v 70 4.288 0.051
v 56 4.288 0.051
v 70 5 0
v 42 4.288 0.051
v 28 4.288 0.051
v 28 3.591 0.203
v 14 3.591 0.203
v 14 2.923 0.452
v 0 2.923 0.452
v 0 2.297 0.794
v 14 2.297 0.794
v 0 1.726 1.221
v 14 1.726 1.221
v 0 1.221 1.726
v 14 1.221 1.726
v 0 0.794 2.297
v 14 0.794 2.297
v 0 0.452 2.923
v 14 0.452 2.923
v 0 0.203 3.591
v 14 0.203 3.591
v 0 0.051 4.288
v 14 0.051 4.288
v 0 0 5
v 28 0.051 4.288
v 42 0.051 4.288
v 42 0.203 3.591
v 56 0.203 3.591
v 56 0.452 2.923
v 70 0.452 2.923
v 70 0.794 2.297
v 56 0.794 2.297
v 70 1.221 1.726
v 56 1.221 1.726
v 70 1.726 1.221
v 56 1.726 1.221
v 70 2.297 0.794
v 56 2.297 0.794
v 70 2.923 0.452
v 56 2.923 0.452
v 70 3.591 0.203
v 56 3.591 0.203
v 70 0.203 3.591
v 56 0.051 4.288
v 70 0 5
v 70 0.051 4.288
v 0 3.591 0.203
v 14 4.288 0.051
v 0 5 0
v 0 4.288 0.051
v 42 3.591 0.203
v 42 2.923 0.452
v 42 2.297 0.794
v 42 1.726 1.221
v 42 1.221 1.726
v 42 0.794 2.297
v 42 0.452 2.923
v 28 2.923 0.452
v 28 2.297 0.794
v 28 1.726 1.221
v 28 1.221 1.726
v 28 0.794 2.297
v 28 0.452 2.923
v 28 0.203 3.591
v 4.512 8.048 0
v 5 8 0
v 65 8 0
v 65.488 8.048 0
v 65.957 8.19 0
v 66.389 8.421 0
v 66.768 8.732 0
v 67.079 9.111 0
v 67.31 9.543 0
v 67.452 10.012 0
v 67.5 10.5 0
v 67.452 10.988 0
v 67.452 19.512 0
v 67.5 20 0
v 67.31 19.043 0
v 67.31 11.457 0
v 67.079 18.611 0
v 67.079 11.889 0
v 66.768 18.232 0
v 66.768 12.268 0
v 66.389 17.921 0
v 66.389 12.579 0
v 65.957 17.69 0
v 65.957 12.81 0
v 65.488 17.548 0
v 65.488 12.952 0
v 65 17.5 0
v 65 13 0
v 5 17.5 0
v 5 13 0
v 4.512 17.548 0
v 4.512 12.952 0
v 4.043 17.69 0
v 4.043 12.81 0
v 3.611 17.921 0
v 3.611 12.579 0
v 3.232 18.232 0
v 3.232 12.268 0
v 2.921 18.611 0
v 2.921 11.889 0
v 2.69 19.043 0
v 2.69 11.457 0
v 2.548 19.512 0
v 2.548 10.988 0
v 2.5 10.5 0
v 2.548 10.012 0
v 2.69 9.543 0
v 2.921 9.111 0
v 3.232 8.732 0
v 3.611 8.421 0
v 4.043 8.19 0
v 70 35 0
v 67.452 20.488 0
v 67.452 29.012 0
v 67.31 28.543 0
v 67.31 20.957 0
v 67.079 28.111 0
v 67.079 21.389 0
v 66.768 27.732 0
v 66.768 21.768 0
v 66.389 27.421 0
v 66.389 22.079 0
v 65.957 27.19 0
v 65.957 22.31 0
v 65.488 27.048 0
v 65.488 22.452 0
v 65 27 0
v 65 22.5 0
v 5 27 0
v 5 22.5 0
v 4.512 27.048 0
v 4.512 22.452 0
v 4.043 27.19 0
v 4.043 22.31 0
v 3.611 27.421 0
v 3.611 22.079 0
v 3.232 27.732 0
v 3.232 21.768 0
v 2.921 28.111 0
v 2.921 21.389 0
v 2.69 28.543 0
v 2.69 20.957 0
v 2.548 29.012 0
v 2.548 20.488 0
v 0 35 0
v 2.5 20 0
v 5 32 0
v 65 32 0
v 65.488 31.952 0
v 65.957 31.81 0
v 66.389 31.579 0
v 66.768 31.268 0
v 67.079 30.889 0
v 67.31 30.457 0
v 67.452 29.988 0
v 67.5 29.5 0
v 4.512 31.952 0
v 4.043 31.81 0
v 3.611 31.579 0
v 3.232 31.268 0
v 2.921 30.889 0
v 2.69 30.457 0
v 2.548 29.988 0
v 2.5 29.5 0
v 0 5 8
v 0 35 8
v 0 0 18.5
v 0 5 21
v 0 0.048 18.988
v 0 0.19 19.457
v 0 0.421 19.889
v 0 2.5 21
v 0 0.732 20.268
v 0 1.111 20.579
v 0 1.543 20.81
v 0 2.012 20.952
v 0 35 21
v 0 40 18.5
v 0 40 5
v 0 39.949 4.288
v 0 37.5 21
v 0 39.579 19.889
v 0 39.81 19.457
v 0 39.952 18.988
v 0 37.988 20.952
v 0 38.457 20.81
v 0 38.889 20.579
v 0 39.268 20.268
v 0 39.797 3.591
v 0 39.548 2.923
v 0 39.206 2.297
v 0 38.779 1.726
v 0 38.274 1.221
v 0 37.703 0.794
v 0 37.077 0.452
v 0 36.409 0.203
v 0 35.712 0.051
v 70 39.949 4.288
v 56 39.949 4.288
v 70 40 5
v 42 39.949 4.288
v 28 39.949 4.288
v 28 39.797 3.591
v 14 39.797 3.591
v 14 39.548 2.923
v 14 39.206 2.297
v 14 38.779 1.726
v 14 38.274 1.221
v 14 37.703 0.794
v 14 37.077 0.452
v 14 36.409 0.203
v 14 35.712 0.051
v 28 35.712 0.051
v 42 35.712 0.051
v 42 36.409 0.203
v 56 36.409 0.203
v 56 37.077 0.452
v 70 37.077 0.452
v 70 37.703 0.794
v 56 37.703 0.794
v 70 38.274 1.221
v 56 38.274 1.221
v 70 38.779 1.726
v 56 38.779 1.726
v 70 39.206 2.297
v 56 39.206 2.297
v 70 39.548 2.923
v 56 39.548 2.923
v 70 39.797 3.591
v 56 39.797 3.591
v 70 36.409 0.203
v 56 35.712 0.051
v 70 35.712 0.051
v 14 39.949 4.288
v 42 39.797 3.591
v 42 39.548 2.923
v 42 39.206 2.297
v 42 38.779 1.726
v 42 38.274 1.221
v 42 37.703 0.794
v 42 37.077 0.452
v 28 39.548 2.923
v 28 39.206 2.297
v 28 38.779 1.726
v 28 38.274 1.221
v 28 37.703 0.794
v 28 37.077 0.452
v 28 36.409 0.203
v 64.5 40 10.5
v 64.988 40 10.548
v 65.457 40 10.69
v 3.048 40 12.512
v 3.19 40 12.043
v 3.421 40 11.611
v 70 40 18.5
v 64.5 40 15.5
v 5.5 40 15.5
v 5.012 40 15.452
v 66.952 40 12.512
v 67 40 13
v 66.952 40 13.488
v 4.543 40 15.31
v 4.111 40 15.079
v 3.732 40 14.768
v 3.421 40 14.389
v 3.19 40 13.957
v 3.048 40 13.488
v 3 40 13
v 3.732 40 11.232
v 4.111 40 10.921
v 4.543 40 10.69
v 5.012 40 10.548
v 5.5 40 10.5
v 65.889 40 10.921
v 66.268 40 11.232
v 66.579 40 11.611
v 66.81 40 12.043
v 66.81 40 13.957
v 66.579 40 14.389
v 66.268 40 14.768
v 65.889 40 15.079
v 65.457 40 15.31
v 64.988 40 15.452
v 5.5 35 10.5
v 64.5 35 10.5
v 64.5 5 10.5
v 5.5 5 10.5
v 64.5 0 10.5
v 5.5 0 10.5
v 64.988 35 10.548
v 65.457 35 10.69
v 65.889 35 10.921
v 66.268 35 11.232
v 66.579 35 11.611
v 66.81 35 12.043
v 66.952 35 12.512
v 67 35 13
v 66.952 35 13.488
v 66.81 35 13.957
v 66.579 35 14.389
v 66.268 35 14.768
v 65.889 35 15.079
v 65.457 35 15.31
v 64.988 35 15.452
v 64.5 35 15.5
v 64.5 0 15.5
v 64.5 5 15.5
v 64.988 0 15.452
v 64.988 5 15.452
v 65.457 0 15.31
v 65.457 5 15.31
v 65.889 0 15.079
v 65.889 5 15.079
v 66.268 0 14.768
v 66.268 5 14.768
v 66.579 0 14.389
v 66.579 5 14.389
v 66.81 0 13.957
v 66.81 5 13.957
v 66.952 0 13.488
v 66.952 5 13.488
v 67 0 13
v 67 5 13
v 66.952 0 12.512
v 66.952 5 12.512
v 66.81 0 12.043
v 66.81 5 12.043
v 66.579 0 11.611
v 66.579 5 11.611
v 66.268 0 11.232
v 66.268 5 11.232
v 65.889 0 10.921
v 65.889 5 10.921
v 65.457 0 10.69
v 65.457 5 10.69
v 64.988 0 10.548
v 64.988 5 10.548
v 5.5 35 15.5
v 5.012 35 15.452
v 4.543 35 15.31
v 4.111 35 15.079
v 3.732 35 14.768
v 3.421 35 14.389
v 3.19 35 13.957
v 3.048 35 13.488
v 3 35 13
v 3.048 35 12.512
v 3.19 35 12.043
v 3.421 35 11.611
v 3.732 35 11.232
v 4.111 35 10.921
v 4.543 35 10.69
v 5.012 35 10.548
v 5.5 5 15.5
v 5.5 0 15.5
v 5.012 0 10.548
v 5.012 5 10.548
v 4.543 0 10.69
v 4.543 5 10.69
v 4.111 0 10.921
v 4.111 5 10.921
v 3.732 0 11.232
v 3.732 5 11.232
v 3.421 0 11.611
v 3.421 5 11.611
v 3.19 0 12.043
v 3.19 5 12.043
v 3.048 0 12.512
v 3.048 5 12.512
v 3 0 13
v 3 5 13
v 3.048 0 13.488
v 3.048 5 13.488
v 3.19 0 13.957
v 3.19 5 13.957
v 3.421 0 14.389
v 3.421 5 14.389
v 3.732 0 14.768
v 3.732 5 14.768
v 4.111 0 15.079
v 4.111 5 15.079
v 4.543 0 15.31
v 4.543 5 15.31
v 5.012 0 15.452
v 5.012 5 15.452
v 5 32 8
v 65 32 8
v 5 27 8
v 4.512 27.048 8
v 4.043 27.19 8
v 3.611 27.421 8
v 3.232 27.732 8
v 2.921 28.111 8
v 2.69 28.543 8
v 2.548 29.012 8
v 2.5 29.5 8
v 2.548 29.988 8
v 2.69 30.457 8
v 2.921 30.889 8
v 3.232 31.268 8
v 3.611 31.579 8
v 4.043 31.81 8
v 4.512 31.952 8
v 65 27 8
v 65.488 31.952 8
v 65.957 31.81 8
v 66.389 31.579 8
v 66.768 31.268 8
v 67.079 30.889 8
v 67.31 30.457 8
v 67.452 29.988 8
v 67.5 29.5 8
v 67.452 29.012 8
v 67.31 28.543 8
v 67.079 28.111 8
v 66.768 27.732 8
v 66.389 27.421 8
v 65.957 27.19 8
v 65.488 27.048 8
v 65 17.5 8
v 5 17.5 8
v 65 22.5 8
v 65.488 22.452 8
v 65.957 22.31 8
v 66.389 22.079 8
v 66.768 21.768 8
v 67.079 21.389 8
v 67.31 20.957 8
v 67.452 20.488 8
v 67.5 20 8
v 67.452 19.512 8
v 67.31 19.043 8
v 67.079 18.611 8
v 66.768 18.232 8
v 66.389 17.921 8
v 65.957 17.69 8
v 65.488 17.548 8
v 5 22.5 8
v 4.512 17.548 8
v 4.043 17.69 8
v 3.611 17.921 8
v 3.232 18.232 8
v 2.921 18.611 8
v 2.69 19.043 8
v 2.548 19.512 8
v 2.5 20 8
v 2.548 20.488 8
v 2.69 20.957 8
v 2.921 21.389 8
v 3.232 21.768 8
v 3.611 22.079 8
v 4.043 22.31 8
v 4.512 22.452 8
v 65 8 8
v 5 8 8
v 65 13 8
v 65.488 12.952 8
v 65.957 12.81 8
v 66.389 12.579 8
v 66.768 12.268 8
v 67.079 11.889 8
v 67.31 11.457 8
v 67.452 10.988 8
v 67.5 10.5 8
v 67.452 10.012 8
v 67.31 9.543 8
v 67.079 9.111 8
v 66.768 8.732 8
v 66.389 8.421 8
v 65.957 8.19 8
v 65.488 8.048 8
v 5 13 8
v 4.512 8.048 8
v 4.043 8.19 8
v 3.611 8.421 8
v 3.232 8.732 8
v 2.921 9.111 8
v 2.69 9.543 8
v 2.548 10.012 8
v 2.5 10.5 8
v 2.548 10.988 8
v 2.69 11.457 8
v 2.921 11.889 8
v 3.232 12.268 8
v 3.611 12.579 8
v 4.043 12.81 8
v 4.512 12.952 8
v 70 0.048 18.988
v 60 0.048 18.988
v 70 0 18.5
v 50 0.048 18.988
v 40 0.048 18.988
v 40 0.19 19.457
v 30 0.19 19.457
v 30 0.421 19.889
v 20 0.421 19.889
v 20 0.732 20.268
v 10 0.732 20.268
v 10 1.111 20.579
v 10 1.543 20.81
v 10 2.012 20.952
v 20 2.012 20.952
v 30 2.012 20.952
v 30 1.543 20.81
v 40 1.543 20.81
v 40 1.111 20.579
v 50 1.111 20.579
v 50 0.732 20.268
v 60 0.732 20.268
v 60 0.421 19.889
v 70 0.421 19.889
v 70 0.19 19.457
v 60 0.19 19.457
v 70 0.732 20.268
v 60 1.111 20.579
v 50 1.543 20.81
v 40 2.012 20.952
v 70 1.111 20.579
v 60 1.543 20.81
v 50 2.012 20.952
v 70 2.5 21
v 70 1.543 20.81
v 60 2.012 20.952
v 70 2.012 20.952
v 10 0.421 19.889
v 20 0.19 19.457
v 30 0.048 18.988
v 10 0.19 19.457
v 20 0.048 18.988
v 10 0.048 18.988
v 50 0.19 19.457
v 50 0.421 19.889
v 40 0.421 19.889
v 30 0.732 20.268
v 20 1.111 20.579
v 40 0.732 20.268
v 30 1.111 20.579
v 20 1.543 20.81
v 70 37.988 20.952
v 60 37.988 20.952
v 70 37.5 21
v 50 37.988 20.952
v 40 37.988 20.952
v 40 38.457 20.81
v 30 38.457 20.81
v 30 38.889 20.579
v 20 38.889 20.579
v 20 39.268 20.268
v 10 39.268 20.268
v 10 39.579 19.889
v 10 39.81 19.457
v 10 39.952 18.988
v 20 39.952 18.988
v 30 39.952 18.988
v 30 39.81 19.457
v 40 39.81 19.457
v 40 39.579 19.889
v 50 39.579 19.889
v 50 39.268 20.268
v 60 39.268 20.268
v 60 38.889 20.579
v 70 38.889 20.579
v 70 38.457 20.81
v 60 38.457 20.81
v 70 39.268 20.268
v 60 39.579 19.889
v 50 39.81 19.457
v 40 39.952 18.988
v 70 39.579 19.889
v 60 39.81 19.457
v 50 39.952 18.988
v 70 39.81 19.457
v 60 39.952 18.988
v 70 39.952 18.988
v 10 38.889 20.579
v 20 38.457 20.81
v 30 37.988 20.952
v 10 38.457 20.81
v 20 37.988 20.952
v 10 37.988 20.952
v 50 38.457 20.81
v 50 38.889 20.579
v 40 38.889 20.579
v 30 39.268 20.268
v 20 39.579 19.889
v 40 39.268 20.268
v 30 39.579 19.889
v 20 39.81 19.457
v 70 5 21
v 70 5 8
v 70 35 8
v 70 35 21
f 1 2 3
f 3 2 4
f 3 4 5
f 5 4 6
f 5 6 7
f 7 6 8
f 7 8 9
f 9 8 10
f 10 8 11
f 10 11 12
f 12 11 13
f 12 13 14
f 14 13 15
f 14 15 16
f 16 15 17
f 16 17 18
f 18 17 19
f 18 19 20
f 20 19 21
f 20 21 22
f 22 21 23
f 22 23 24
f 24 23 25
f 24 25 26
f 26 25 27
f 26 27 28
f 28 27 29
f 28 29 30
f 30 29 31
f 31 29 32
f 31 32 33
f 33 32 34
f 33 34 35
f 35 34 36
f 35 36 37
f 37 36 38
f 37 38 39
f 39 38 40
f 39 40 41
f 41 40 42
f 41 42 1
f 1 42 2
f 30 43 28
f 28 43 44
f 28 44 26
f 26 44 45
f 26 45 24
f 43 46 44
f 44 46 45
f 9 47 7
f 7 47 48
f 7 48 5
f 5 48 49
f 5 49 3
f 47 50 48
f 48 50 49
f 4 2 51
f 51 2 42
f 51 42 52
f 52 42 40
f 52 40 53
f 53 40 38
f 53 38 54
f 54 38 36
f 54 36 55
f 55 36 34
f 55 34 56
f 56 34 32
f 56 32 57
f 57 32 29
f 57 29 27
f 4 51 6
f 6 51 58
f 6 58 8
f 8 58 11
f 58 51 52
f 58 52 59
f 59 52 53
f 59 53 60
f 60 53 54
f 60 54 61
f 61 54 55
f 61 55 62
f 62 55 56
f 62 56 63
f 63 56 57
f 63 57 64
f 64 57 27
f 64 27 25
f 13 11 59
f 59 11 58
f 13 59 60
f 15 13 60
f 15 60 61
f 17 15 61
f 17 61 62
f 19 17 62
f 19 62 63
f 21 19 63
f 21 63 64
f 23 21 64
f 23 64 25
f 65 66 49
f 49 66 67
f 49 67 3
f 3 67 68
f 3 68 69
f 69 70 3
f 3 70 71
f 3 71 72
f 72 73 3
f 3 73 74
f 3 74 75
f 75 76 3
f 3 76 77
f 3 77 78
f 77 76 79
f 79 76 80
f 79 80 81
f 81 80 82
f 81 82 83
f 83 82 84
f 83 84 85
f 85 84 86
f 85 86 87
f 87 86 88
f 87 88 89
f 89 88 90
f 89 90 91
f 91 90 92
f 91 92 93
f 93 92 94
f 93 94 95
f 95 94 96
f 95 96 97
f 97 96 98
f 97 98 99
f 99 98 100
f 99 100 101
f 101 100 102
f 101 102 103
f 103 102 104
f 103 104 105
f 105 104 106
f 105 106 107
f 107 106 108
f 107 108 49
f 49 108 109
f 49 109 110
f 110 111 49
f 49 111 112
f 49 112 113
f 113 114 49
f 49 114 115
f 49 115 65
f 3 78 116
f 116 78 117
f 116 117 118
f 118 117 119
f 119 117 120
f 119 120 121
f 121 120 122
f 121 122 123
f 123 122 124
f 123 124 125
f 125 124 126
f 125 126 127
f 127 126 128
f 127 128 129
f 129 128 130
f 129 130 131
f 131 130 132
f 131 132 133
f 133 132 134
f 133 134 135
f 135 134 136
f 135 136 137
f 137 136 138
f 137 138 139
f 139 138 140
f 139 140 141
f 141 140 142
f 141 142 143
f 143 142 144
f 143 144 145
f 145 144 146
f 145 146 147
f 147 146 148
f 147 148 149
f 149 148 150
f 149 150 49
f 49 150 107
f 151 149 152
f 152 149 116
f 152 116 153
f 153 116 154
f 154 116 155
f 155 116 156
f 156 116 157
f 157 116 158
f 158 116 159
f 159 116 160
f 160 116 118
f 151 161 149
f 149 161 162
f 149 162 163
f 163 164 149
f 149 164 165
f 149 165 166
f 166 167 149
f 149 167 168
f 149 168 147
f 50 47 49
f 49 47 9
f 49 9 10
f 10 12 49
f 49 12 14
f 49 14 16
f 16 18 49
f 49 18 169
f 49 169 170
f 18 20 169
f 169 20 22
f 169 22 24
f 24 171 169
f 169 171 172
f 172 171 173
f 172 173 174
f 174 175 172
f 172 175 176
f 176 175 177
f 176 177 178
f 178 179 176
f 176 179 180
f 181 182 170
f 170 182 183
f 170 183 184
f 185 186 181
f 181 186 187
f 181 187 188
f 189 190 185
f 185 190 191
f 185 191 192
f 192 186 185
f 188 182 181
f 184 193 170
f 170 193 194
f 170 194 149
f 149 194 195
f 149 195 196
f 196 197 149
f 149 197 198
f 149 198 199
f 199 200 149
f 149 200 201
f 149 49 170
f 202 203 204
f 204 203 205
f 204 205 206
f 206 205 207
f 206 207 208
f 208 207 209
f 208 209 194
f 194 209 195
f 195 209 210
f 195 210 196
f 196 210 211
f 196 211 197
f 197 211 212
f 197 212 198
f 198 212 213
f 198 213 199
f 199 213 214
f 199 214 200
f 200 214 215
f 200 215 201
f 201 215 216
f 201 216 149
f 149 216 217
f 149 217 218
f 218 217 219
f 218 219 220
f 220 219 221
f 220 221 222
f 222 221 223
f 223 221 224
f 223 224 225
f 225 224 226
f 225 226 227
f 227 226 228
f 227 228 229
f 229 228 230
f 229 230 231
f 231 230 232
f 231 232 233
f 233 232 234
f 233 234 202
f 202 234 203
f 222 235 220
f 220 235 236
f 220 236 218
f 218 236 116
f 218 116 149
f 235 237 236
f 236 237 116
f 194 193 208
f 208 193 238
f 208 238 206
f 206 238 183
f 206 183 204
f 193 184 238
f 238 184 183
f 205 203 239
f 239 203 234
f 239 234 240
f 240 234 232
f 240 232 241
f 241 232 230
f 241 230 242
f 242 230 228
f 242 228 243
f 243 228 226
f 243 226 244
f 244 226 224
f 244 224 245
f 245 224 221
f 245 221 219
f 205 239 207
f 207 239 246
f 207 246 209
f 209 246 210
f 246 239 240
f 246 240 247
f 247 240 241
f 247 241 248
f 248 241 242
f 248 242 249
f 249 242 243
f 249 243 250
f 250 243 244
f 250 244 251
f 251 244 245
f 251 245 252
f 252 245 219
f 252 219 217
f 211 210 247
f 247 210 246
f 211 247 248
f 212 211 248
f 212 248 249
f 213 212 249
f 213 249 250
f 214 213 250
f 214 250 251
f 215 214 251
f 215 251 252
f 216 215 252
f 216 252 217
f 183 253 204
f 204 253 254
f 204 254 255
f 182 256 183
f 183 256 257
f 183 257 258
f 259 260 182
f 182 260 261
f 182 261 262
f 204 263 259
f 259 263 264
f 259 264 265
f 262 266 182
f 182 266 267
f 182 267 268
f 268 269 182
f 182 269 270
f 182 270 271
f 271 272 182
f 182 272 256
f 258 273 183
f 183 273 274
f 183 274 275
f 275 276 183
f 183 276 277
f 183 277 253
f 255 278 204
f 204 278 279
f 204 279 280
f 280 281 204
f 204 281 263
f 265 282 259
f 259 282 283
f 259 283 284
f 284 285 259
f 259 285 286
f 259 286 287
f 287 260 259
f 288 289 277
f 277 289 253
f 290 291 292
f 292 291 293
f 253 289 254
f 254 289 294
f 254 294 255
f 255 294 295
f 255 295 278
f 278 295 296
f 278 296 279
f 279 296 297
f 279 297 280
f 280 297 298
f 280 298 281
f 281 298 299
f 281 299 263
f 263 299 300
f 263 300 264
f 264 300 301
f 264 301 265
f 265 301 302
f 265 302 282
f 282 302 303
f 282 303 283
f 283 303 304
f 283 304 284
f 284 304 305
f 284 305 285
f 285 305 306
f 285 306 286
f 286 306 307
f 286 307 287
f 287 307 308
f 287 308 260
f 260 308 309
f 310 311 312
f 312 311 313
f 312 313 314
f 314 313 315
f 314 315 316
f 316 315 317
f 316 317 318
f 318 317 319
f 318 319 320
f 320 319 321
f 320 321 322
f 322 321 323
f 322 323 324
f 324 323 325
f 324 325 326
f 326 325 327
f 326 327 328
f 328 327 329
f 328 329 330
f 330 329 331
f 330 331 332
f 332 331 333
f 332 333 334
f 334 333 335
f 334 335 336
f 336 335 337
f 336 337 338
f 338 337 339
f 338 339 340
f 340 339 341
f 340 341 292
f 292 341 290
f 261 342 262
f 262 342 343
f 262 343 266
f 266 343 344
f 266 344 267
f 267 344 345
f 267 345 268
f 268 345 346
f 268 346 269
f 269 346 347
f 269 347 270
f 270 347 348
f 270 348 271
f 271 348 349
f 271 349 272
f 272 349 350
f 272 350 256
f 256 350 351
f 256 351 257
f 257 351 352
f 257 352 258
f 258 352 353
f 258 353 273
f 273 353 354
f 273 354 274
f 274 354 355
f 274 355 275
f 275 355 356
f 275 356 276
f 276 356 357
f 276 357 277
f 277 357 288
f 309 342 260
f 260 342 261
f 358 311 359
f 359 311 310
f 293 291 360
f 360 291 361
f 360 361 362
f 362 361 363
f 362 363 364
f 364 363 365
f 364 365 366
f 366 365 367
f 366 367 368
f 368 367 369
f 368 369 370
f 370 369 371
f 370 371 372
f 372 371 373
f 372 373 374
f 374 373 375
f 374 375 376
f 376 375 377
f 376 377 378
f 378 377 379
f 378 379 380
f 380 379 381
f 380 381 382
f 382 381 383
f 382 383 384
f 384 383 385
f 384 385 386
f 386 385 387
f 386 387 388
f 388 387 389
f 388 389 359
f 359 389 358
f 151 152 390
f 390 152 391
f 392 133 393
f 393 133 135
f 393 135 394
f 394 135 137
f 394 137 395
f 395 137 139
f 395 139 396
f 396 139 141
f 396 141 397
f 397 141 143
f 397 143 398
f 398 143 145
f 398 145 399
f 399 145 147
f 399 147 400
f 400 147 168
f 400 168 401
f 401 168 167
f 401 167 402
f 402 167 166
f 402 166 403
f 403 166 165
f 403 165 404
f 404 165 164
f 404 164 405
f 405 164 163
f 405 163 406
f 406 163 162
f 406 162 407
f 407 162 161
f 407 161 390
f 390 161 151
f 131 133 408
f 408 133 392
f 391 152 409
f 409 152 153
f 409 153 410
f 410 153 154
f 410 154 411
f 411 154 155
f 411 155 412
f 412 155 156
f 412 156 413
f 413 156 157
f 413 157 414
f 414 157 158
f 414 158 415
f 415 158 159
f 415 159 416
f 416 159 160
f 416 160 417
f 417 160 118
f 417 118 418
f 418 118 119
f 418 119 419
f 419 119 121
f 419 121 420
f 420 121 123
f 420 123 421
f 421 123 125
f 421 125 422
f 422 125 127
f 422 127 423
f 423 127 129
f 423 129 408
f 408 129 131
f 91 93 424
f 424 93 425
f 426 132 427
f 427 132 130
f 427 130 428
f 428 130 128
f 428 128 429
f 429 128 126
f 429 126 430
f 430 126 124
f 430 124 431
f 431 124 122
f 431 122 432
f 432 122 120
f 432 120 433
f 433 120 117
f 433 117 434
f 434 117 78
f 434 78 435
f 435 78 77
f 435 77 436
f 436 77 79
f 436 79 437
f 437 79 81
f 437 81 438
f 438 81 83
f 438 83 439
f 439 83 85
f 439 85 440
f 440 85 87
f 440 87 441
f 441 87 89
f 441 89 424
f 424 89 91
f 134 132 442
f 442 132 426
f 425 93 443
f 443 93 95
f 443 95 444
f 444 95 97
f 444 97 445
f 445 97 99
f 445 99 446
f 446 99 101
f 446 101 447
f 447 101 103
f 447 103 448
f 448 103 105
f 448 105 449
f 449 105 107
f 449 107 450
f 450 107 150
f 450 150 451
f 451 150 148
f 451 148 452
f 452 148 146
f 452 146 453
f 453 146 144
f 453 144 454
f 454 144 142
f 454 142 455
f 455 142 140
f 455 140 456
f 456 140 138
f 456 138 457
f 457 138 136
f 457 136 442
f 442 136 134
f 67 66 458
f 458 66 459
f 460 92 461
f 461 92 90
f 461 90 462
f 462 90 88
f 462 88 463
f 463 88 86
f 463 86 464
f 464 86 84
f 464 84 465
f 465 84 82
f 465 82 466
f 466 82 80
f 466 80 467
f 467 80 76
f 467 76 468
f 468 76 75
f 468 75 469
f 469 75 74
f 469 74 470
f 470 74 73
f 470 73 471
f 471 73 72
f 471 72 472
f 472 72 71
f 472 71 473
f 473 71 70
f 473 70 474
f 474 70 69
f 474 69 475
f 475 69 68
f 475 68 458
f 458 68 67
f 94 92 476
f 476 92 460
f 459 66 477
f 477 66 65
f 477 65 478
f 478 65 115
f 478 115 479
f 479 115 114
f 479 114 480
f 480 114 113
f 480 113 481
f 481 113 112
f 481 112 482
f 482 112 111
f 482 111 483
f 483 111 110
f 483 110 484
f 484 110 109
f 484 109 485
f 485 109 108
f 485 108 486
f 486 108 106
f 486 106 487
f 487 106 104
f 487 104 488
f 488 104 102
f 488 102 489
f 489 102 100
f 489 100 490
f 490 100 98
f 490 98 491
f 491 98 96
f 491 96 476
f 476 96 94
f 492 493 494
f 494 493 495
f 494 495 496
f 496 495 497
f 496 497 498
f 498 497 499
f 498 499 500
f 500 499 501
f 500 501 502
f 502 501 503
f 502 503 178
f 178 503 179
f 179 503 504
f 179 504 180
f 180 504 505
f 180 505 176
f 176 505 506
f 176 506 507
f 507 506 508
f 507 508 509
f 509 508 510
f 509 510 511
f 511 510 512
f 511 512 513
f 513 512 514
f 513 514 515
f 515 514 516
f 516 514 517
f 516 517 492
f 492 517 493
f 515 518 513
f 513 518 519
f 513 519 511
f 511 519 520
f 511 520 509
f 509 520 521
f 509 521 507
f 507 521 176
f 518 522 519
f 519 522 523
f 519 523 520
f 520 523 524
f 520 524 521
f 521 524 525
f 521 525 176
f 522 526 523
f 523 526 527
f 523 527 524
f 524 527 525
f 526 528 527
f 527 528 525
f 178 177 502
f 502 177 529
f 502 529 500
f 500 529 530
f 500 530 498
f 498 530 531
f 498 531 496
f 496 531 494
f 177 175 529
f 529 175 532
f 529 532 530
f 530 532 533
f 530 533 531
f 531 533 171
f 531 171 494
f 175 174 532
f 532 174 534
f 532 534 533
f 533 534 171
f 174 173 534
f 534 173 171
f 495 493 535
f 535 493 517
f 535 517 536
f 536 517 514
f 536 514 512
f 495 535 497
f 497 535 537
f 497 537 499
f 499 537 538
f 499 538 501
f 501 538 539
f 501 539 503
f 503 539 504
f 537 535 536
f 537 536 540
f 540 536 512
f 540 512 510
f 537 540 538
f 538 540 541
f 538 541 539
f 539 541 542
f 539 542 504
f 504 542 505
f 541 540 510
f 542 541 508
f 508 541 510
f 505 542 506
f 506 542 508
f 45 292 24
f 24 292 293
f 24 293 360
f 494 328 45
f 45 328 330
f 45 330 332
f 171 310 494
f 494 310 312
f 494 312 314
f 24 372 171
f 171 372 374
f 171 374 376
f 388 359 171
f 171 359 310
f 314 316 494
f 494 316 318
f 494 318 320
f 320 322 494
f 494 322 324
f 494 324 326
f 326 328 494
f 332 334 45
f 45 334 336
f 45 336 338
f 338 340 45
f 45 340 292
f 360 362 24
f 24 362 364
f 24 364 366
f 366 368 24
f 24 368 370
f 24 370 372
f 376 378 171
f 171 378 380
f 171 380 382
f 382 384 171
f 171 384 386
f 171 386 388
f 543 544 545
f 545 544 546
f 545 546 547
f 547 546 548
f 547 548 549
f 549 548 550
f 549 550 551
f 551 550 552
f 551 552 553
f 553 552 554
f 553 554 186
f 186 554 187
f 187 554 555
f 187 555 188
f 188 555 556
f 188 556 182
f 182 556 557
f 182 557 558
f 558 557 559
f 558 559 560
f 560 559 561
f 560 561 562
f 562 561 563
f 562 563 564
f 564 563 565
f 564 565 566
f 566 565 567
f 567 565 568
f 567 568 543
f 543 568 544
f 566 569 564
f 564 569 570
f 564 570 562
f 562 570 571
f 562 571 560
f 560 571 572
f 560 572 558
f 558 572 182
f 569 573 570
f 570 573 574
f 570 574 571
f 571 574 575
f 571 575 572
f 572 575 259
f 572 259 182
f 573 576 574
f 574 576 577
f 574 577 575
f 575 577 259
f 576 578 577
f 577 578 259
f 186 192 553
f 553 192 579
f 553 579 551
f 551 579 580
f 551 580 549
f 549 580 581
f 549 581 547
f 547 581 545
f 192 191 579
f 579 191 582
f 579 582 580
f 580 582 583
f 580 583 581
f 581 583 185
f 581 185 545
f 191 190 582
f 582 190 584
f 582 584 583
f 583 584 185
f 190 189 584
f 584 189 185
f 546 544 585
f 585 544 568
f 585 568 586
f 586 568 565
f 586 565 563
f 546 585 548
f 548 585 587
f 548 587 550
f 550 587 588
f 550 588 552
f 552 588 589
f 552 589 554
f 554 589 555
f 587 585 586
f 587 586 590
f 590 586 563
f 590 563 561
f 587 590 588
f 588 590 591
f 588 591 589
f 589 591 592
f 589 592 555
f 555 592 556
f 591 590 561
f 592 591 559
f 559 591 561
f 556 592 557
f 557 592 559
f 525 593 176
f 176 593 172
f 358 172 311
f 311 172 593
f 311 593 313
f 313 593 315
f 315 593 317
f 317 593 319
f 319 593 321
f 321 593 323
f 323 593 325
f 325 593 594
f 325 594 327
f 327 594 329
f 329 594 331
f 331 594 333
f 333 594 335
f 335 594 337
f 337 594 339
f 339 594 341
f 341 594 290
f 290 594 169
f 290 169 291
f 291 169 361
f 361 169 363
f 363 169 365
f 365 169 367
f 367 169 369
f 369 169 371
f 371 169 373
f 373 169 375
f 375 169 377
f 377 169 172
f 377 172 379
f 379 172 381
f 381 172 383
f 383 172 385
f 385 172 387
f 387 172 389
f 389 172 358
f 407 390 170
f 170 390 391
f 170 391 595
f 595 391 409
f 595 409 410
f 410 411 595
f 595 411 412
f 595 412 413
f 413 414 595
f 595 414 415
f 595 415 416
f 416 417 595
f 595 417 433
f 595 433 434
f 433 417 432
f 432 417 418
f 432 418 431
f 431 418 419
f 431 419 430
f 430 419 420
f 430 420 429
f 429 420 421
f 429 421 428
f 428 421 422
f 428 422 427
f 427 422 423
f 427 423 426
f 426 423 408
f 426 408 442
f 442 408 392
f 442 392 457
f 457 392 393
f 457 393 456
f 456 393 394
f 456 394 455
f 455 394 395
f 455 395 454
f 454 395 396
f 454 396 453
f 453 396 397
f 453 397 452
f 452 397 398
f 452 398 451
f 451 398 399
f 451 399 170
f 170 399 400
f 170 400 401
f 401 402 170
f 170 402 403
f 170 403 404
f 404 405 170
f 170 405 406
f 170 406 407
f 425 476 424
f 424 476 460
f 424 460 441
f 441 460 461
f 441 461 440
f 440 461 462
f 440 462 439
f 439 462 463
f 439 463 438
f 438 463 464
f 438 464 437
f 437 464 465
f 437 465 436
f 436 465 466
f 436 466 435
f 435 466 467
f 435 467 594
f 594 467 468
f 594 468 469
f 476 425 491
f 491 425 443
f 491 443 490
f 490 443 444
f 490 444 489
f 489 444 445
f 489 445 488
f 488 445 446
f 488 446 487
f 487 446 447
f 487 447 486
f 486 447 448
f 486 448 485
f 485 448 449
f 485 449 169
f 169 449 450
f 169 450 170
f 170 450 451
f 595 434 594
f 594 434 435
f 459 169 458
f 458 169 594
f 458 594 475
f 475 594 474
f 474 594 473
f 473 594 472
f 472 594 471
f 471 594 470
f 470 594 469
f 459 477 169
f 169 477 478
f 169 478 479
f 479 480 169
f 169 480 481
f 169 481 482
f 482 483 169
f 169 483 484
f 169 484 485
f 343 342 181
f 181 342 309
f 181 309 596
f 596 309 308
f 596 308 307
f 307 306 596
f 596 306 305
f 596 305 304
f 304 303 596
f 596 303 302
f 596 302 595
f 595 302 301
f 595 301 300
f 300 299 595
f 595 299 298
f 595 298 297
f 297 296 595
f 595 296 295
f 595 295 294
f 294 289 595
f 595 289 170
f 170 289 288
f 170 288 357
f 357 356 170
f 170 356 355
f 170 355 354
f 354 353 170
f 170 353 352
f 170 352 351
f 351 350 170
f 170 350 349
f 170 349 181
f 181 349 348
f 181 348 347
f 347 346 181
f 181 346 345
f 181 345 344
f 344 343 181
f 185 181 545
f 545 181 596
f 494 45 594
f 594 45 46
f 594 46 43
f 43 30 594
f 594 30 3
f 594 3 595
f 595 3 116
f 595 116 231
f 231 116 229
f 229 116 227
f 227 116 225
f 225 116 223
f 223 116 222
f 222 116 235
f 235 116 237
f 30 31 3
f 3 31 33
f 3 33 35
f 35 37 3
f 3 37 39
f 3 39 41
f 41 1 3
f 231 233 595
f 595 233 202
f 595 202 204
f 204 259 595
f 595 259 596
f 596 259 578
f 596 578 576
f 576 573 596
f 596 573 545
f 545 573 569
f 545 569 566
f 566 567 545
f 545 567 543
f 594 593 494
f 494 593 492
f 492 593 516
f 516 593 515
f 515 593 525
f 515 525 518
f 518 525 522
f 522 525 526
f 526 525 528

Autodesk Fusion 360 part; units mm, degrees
sketch "Sketch1" plane through (0, 0, 0) normal (1, 0, 0) x (0, 1, 0)
  line L0 (0, 0) -> (0, 21)
  line L1 (0, 21) -> (5, 21)
  line L2 (5, 21) -> (5, 8)
  line L3 (5, 8) -> (35, 8)
  line L4 (35, 8) -> (35, 21)
  line L5 (35, 21) -> (40, 21)
  line L6 (40, 21) -> (40, 0)
  line L7 (40, 0) -> (0, 0)
  line L8 (20, 8) -> (20, 0) construction
  dimension "d1" = 8
  dimension "d2" = 30
  dimension "d3" = 5
  dimension "d5" = 5
  dimension "d6" = 13
  dimension "d7" = 13
extrude "Extrude1" add sketch "Sketch1" along normal blind 70
fillet "Fillet1" radius 2.5 2 edges at (35, 40, 21) (35, 0, 21)
sketch "Sketch2" plane through (0, 0, 8) normal (0, 0, 1) x (-1, 0, 0)
  line L0 (0, -35) -> (0, -5)
  line L1 (0, -5) -> (-70, -5)
  line L2 (-70, -5) -> (-70, -35)
  line L3 (-70, -35) -> (0, -35)
  line L4 (0, -5) -> (-70, -5)
  line L5 (-70, -35) -> (-70, -5)
  line L6 (0, -5) -> (0, -35)
  line L7 (0, -35) -> (-70, -35)
  line L8 (-35, -35) -> (-35, -5) construction
  line L9 (-65, -10) -> (-65, -30) construction
  line L10 (-65, -30) -> (-5, -30) construction
  line L11 (-5, -30) -> (-5, -10) construction
  line L12 (-5, -10) -> (-65, -10) construction
  line L13 (-5, -20) -> (-65, -20) construction
  line L14 (-5, -27) -> (-65, -27)
  arc A0 (-65, -27) -> (-65, -32) centre (-65, -29.5) ccw
  line L15 (-65, -32) -> (-5, -32)
  arc A1 (-5, -32) -> (-5, -27) centre (-5, -29.5) ccw
  line L16 (-5, -29.5) -> (-65, -29.5) construction
  line L17 (-65, -22.5) -> (-5, -22.5)
  arc A2 (-5, -22.5) -> (-5, -17.5) centre (-5, -20) ccw
  line L18 (-5, -17.5) -> (-65, -17.5)
  arc A3 (-65, -17.5) -> (-65, -22.5) centre (-65, -20) ccw
  line L19 (-65, -13) -> (-5, -13)
  arc A4 (-5, -13) -> (-5, -8) centre (-5, -10.5) ccw
  line L20 (-5, -8) -> (-65, -8)
  arc A5 (-65, -8) -> (-65, -13) centre (-65, -10.5) ccw
  dimension "d12" = -5
  dimension "d15" = 3
  dimension "d16" = 5
  dimension "d19" = 0
  dimension "d20" = 19
extrude "Extrude2" cut sketch "Sketch2" against normal up to surface (8 mm away) contours L14 A0 L15 A1 | L17 A2 L18 A3 | L19 A4 L20 A5
sketch "Sketch3" plane through (0, 0, 0) normal (0, -1, 0) x (1, 0, 0)
  line L0 (70, 18.5) -> (0, 18.5)
  line L1 (0, 18.5) -> (0, 0)
  line L2 (0, 0) -> (70, 0)
  line L3 (70, 0) -> (70, 18.5)
  line L4 (0, 8) -> (70, 8)
  line L5 (0, 21) -> (70, 21)
  line L6 (0, 21) -> (0, 8)
  line L7 (70, 8) -> (70, 21)
  line L8 (0, 18.5) -> (70, 18.5)
  line L9 (5.5, 10.5) -> (64.5, 10.5)
  arc A0 (64.5, 10.5) -> (64.5, 15.5) centre (64.5, 13) ccw
  line L10 (64.5, 15.5) -> (5.5, 15.5)
  arc A1 (5.5, 15.5) -> (5.5, 10.5) centre (5.5, 13) ccw
  line L11 (5.5, 13) -> (64.5, 13) construction
  dimension "d23" = 5
  dimension "d24" = 3
  dimension "d25" = 3
  dimension "d26" = 3
extrude "Extrude3" cut sketch "Sketch3" against normal up to surface (40 mm away) contours L9 A0 L10 A1
fillet "Fillet2" radius 5 2 edges at (35, 40, 0) (35, 0, 0)
